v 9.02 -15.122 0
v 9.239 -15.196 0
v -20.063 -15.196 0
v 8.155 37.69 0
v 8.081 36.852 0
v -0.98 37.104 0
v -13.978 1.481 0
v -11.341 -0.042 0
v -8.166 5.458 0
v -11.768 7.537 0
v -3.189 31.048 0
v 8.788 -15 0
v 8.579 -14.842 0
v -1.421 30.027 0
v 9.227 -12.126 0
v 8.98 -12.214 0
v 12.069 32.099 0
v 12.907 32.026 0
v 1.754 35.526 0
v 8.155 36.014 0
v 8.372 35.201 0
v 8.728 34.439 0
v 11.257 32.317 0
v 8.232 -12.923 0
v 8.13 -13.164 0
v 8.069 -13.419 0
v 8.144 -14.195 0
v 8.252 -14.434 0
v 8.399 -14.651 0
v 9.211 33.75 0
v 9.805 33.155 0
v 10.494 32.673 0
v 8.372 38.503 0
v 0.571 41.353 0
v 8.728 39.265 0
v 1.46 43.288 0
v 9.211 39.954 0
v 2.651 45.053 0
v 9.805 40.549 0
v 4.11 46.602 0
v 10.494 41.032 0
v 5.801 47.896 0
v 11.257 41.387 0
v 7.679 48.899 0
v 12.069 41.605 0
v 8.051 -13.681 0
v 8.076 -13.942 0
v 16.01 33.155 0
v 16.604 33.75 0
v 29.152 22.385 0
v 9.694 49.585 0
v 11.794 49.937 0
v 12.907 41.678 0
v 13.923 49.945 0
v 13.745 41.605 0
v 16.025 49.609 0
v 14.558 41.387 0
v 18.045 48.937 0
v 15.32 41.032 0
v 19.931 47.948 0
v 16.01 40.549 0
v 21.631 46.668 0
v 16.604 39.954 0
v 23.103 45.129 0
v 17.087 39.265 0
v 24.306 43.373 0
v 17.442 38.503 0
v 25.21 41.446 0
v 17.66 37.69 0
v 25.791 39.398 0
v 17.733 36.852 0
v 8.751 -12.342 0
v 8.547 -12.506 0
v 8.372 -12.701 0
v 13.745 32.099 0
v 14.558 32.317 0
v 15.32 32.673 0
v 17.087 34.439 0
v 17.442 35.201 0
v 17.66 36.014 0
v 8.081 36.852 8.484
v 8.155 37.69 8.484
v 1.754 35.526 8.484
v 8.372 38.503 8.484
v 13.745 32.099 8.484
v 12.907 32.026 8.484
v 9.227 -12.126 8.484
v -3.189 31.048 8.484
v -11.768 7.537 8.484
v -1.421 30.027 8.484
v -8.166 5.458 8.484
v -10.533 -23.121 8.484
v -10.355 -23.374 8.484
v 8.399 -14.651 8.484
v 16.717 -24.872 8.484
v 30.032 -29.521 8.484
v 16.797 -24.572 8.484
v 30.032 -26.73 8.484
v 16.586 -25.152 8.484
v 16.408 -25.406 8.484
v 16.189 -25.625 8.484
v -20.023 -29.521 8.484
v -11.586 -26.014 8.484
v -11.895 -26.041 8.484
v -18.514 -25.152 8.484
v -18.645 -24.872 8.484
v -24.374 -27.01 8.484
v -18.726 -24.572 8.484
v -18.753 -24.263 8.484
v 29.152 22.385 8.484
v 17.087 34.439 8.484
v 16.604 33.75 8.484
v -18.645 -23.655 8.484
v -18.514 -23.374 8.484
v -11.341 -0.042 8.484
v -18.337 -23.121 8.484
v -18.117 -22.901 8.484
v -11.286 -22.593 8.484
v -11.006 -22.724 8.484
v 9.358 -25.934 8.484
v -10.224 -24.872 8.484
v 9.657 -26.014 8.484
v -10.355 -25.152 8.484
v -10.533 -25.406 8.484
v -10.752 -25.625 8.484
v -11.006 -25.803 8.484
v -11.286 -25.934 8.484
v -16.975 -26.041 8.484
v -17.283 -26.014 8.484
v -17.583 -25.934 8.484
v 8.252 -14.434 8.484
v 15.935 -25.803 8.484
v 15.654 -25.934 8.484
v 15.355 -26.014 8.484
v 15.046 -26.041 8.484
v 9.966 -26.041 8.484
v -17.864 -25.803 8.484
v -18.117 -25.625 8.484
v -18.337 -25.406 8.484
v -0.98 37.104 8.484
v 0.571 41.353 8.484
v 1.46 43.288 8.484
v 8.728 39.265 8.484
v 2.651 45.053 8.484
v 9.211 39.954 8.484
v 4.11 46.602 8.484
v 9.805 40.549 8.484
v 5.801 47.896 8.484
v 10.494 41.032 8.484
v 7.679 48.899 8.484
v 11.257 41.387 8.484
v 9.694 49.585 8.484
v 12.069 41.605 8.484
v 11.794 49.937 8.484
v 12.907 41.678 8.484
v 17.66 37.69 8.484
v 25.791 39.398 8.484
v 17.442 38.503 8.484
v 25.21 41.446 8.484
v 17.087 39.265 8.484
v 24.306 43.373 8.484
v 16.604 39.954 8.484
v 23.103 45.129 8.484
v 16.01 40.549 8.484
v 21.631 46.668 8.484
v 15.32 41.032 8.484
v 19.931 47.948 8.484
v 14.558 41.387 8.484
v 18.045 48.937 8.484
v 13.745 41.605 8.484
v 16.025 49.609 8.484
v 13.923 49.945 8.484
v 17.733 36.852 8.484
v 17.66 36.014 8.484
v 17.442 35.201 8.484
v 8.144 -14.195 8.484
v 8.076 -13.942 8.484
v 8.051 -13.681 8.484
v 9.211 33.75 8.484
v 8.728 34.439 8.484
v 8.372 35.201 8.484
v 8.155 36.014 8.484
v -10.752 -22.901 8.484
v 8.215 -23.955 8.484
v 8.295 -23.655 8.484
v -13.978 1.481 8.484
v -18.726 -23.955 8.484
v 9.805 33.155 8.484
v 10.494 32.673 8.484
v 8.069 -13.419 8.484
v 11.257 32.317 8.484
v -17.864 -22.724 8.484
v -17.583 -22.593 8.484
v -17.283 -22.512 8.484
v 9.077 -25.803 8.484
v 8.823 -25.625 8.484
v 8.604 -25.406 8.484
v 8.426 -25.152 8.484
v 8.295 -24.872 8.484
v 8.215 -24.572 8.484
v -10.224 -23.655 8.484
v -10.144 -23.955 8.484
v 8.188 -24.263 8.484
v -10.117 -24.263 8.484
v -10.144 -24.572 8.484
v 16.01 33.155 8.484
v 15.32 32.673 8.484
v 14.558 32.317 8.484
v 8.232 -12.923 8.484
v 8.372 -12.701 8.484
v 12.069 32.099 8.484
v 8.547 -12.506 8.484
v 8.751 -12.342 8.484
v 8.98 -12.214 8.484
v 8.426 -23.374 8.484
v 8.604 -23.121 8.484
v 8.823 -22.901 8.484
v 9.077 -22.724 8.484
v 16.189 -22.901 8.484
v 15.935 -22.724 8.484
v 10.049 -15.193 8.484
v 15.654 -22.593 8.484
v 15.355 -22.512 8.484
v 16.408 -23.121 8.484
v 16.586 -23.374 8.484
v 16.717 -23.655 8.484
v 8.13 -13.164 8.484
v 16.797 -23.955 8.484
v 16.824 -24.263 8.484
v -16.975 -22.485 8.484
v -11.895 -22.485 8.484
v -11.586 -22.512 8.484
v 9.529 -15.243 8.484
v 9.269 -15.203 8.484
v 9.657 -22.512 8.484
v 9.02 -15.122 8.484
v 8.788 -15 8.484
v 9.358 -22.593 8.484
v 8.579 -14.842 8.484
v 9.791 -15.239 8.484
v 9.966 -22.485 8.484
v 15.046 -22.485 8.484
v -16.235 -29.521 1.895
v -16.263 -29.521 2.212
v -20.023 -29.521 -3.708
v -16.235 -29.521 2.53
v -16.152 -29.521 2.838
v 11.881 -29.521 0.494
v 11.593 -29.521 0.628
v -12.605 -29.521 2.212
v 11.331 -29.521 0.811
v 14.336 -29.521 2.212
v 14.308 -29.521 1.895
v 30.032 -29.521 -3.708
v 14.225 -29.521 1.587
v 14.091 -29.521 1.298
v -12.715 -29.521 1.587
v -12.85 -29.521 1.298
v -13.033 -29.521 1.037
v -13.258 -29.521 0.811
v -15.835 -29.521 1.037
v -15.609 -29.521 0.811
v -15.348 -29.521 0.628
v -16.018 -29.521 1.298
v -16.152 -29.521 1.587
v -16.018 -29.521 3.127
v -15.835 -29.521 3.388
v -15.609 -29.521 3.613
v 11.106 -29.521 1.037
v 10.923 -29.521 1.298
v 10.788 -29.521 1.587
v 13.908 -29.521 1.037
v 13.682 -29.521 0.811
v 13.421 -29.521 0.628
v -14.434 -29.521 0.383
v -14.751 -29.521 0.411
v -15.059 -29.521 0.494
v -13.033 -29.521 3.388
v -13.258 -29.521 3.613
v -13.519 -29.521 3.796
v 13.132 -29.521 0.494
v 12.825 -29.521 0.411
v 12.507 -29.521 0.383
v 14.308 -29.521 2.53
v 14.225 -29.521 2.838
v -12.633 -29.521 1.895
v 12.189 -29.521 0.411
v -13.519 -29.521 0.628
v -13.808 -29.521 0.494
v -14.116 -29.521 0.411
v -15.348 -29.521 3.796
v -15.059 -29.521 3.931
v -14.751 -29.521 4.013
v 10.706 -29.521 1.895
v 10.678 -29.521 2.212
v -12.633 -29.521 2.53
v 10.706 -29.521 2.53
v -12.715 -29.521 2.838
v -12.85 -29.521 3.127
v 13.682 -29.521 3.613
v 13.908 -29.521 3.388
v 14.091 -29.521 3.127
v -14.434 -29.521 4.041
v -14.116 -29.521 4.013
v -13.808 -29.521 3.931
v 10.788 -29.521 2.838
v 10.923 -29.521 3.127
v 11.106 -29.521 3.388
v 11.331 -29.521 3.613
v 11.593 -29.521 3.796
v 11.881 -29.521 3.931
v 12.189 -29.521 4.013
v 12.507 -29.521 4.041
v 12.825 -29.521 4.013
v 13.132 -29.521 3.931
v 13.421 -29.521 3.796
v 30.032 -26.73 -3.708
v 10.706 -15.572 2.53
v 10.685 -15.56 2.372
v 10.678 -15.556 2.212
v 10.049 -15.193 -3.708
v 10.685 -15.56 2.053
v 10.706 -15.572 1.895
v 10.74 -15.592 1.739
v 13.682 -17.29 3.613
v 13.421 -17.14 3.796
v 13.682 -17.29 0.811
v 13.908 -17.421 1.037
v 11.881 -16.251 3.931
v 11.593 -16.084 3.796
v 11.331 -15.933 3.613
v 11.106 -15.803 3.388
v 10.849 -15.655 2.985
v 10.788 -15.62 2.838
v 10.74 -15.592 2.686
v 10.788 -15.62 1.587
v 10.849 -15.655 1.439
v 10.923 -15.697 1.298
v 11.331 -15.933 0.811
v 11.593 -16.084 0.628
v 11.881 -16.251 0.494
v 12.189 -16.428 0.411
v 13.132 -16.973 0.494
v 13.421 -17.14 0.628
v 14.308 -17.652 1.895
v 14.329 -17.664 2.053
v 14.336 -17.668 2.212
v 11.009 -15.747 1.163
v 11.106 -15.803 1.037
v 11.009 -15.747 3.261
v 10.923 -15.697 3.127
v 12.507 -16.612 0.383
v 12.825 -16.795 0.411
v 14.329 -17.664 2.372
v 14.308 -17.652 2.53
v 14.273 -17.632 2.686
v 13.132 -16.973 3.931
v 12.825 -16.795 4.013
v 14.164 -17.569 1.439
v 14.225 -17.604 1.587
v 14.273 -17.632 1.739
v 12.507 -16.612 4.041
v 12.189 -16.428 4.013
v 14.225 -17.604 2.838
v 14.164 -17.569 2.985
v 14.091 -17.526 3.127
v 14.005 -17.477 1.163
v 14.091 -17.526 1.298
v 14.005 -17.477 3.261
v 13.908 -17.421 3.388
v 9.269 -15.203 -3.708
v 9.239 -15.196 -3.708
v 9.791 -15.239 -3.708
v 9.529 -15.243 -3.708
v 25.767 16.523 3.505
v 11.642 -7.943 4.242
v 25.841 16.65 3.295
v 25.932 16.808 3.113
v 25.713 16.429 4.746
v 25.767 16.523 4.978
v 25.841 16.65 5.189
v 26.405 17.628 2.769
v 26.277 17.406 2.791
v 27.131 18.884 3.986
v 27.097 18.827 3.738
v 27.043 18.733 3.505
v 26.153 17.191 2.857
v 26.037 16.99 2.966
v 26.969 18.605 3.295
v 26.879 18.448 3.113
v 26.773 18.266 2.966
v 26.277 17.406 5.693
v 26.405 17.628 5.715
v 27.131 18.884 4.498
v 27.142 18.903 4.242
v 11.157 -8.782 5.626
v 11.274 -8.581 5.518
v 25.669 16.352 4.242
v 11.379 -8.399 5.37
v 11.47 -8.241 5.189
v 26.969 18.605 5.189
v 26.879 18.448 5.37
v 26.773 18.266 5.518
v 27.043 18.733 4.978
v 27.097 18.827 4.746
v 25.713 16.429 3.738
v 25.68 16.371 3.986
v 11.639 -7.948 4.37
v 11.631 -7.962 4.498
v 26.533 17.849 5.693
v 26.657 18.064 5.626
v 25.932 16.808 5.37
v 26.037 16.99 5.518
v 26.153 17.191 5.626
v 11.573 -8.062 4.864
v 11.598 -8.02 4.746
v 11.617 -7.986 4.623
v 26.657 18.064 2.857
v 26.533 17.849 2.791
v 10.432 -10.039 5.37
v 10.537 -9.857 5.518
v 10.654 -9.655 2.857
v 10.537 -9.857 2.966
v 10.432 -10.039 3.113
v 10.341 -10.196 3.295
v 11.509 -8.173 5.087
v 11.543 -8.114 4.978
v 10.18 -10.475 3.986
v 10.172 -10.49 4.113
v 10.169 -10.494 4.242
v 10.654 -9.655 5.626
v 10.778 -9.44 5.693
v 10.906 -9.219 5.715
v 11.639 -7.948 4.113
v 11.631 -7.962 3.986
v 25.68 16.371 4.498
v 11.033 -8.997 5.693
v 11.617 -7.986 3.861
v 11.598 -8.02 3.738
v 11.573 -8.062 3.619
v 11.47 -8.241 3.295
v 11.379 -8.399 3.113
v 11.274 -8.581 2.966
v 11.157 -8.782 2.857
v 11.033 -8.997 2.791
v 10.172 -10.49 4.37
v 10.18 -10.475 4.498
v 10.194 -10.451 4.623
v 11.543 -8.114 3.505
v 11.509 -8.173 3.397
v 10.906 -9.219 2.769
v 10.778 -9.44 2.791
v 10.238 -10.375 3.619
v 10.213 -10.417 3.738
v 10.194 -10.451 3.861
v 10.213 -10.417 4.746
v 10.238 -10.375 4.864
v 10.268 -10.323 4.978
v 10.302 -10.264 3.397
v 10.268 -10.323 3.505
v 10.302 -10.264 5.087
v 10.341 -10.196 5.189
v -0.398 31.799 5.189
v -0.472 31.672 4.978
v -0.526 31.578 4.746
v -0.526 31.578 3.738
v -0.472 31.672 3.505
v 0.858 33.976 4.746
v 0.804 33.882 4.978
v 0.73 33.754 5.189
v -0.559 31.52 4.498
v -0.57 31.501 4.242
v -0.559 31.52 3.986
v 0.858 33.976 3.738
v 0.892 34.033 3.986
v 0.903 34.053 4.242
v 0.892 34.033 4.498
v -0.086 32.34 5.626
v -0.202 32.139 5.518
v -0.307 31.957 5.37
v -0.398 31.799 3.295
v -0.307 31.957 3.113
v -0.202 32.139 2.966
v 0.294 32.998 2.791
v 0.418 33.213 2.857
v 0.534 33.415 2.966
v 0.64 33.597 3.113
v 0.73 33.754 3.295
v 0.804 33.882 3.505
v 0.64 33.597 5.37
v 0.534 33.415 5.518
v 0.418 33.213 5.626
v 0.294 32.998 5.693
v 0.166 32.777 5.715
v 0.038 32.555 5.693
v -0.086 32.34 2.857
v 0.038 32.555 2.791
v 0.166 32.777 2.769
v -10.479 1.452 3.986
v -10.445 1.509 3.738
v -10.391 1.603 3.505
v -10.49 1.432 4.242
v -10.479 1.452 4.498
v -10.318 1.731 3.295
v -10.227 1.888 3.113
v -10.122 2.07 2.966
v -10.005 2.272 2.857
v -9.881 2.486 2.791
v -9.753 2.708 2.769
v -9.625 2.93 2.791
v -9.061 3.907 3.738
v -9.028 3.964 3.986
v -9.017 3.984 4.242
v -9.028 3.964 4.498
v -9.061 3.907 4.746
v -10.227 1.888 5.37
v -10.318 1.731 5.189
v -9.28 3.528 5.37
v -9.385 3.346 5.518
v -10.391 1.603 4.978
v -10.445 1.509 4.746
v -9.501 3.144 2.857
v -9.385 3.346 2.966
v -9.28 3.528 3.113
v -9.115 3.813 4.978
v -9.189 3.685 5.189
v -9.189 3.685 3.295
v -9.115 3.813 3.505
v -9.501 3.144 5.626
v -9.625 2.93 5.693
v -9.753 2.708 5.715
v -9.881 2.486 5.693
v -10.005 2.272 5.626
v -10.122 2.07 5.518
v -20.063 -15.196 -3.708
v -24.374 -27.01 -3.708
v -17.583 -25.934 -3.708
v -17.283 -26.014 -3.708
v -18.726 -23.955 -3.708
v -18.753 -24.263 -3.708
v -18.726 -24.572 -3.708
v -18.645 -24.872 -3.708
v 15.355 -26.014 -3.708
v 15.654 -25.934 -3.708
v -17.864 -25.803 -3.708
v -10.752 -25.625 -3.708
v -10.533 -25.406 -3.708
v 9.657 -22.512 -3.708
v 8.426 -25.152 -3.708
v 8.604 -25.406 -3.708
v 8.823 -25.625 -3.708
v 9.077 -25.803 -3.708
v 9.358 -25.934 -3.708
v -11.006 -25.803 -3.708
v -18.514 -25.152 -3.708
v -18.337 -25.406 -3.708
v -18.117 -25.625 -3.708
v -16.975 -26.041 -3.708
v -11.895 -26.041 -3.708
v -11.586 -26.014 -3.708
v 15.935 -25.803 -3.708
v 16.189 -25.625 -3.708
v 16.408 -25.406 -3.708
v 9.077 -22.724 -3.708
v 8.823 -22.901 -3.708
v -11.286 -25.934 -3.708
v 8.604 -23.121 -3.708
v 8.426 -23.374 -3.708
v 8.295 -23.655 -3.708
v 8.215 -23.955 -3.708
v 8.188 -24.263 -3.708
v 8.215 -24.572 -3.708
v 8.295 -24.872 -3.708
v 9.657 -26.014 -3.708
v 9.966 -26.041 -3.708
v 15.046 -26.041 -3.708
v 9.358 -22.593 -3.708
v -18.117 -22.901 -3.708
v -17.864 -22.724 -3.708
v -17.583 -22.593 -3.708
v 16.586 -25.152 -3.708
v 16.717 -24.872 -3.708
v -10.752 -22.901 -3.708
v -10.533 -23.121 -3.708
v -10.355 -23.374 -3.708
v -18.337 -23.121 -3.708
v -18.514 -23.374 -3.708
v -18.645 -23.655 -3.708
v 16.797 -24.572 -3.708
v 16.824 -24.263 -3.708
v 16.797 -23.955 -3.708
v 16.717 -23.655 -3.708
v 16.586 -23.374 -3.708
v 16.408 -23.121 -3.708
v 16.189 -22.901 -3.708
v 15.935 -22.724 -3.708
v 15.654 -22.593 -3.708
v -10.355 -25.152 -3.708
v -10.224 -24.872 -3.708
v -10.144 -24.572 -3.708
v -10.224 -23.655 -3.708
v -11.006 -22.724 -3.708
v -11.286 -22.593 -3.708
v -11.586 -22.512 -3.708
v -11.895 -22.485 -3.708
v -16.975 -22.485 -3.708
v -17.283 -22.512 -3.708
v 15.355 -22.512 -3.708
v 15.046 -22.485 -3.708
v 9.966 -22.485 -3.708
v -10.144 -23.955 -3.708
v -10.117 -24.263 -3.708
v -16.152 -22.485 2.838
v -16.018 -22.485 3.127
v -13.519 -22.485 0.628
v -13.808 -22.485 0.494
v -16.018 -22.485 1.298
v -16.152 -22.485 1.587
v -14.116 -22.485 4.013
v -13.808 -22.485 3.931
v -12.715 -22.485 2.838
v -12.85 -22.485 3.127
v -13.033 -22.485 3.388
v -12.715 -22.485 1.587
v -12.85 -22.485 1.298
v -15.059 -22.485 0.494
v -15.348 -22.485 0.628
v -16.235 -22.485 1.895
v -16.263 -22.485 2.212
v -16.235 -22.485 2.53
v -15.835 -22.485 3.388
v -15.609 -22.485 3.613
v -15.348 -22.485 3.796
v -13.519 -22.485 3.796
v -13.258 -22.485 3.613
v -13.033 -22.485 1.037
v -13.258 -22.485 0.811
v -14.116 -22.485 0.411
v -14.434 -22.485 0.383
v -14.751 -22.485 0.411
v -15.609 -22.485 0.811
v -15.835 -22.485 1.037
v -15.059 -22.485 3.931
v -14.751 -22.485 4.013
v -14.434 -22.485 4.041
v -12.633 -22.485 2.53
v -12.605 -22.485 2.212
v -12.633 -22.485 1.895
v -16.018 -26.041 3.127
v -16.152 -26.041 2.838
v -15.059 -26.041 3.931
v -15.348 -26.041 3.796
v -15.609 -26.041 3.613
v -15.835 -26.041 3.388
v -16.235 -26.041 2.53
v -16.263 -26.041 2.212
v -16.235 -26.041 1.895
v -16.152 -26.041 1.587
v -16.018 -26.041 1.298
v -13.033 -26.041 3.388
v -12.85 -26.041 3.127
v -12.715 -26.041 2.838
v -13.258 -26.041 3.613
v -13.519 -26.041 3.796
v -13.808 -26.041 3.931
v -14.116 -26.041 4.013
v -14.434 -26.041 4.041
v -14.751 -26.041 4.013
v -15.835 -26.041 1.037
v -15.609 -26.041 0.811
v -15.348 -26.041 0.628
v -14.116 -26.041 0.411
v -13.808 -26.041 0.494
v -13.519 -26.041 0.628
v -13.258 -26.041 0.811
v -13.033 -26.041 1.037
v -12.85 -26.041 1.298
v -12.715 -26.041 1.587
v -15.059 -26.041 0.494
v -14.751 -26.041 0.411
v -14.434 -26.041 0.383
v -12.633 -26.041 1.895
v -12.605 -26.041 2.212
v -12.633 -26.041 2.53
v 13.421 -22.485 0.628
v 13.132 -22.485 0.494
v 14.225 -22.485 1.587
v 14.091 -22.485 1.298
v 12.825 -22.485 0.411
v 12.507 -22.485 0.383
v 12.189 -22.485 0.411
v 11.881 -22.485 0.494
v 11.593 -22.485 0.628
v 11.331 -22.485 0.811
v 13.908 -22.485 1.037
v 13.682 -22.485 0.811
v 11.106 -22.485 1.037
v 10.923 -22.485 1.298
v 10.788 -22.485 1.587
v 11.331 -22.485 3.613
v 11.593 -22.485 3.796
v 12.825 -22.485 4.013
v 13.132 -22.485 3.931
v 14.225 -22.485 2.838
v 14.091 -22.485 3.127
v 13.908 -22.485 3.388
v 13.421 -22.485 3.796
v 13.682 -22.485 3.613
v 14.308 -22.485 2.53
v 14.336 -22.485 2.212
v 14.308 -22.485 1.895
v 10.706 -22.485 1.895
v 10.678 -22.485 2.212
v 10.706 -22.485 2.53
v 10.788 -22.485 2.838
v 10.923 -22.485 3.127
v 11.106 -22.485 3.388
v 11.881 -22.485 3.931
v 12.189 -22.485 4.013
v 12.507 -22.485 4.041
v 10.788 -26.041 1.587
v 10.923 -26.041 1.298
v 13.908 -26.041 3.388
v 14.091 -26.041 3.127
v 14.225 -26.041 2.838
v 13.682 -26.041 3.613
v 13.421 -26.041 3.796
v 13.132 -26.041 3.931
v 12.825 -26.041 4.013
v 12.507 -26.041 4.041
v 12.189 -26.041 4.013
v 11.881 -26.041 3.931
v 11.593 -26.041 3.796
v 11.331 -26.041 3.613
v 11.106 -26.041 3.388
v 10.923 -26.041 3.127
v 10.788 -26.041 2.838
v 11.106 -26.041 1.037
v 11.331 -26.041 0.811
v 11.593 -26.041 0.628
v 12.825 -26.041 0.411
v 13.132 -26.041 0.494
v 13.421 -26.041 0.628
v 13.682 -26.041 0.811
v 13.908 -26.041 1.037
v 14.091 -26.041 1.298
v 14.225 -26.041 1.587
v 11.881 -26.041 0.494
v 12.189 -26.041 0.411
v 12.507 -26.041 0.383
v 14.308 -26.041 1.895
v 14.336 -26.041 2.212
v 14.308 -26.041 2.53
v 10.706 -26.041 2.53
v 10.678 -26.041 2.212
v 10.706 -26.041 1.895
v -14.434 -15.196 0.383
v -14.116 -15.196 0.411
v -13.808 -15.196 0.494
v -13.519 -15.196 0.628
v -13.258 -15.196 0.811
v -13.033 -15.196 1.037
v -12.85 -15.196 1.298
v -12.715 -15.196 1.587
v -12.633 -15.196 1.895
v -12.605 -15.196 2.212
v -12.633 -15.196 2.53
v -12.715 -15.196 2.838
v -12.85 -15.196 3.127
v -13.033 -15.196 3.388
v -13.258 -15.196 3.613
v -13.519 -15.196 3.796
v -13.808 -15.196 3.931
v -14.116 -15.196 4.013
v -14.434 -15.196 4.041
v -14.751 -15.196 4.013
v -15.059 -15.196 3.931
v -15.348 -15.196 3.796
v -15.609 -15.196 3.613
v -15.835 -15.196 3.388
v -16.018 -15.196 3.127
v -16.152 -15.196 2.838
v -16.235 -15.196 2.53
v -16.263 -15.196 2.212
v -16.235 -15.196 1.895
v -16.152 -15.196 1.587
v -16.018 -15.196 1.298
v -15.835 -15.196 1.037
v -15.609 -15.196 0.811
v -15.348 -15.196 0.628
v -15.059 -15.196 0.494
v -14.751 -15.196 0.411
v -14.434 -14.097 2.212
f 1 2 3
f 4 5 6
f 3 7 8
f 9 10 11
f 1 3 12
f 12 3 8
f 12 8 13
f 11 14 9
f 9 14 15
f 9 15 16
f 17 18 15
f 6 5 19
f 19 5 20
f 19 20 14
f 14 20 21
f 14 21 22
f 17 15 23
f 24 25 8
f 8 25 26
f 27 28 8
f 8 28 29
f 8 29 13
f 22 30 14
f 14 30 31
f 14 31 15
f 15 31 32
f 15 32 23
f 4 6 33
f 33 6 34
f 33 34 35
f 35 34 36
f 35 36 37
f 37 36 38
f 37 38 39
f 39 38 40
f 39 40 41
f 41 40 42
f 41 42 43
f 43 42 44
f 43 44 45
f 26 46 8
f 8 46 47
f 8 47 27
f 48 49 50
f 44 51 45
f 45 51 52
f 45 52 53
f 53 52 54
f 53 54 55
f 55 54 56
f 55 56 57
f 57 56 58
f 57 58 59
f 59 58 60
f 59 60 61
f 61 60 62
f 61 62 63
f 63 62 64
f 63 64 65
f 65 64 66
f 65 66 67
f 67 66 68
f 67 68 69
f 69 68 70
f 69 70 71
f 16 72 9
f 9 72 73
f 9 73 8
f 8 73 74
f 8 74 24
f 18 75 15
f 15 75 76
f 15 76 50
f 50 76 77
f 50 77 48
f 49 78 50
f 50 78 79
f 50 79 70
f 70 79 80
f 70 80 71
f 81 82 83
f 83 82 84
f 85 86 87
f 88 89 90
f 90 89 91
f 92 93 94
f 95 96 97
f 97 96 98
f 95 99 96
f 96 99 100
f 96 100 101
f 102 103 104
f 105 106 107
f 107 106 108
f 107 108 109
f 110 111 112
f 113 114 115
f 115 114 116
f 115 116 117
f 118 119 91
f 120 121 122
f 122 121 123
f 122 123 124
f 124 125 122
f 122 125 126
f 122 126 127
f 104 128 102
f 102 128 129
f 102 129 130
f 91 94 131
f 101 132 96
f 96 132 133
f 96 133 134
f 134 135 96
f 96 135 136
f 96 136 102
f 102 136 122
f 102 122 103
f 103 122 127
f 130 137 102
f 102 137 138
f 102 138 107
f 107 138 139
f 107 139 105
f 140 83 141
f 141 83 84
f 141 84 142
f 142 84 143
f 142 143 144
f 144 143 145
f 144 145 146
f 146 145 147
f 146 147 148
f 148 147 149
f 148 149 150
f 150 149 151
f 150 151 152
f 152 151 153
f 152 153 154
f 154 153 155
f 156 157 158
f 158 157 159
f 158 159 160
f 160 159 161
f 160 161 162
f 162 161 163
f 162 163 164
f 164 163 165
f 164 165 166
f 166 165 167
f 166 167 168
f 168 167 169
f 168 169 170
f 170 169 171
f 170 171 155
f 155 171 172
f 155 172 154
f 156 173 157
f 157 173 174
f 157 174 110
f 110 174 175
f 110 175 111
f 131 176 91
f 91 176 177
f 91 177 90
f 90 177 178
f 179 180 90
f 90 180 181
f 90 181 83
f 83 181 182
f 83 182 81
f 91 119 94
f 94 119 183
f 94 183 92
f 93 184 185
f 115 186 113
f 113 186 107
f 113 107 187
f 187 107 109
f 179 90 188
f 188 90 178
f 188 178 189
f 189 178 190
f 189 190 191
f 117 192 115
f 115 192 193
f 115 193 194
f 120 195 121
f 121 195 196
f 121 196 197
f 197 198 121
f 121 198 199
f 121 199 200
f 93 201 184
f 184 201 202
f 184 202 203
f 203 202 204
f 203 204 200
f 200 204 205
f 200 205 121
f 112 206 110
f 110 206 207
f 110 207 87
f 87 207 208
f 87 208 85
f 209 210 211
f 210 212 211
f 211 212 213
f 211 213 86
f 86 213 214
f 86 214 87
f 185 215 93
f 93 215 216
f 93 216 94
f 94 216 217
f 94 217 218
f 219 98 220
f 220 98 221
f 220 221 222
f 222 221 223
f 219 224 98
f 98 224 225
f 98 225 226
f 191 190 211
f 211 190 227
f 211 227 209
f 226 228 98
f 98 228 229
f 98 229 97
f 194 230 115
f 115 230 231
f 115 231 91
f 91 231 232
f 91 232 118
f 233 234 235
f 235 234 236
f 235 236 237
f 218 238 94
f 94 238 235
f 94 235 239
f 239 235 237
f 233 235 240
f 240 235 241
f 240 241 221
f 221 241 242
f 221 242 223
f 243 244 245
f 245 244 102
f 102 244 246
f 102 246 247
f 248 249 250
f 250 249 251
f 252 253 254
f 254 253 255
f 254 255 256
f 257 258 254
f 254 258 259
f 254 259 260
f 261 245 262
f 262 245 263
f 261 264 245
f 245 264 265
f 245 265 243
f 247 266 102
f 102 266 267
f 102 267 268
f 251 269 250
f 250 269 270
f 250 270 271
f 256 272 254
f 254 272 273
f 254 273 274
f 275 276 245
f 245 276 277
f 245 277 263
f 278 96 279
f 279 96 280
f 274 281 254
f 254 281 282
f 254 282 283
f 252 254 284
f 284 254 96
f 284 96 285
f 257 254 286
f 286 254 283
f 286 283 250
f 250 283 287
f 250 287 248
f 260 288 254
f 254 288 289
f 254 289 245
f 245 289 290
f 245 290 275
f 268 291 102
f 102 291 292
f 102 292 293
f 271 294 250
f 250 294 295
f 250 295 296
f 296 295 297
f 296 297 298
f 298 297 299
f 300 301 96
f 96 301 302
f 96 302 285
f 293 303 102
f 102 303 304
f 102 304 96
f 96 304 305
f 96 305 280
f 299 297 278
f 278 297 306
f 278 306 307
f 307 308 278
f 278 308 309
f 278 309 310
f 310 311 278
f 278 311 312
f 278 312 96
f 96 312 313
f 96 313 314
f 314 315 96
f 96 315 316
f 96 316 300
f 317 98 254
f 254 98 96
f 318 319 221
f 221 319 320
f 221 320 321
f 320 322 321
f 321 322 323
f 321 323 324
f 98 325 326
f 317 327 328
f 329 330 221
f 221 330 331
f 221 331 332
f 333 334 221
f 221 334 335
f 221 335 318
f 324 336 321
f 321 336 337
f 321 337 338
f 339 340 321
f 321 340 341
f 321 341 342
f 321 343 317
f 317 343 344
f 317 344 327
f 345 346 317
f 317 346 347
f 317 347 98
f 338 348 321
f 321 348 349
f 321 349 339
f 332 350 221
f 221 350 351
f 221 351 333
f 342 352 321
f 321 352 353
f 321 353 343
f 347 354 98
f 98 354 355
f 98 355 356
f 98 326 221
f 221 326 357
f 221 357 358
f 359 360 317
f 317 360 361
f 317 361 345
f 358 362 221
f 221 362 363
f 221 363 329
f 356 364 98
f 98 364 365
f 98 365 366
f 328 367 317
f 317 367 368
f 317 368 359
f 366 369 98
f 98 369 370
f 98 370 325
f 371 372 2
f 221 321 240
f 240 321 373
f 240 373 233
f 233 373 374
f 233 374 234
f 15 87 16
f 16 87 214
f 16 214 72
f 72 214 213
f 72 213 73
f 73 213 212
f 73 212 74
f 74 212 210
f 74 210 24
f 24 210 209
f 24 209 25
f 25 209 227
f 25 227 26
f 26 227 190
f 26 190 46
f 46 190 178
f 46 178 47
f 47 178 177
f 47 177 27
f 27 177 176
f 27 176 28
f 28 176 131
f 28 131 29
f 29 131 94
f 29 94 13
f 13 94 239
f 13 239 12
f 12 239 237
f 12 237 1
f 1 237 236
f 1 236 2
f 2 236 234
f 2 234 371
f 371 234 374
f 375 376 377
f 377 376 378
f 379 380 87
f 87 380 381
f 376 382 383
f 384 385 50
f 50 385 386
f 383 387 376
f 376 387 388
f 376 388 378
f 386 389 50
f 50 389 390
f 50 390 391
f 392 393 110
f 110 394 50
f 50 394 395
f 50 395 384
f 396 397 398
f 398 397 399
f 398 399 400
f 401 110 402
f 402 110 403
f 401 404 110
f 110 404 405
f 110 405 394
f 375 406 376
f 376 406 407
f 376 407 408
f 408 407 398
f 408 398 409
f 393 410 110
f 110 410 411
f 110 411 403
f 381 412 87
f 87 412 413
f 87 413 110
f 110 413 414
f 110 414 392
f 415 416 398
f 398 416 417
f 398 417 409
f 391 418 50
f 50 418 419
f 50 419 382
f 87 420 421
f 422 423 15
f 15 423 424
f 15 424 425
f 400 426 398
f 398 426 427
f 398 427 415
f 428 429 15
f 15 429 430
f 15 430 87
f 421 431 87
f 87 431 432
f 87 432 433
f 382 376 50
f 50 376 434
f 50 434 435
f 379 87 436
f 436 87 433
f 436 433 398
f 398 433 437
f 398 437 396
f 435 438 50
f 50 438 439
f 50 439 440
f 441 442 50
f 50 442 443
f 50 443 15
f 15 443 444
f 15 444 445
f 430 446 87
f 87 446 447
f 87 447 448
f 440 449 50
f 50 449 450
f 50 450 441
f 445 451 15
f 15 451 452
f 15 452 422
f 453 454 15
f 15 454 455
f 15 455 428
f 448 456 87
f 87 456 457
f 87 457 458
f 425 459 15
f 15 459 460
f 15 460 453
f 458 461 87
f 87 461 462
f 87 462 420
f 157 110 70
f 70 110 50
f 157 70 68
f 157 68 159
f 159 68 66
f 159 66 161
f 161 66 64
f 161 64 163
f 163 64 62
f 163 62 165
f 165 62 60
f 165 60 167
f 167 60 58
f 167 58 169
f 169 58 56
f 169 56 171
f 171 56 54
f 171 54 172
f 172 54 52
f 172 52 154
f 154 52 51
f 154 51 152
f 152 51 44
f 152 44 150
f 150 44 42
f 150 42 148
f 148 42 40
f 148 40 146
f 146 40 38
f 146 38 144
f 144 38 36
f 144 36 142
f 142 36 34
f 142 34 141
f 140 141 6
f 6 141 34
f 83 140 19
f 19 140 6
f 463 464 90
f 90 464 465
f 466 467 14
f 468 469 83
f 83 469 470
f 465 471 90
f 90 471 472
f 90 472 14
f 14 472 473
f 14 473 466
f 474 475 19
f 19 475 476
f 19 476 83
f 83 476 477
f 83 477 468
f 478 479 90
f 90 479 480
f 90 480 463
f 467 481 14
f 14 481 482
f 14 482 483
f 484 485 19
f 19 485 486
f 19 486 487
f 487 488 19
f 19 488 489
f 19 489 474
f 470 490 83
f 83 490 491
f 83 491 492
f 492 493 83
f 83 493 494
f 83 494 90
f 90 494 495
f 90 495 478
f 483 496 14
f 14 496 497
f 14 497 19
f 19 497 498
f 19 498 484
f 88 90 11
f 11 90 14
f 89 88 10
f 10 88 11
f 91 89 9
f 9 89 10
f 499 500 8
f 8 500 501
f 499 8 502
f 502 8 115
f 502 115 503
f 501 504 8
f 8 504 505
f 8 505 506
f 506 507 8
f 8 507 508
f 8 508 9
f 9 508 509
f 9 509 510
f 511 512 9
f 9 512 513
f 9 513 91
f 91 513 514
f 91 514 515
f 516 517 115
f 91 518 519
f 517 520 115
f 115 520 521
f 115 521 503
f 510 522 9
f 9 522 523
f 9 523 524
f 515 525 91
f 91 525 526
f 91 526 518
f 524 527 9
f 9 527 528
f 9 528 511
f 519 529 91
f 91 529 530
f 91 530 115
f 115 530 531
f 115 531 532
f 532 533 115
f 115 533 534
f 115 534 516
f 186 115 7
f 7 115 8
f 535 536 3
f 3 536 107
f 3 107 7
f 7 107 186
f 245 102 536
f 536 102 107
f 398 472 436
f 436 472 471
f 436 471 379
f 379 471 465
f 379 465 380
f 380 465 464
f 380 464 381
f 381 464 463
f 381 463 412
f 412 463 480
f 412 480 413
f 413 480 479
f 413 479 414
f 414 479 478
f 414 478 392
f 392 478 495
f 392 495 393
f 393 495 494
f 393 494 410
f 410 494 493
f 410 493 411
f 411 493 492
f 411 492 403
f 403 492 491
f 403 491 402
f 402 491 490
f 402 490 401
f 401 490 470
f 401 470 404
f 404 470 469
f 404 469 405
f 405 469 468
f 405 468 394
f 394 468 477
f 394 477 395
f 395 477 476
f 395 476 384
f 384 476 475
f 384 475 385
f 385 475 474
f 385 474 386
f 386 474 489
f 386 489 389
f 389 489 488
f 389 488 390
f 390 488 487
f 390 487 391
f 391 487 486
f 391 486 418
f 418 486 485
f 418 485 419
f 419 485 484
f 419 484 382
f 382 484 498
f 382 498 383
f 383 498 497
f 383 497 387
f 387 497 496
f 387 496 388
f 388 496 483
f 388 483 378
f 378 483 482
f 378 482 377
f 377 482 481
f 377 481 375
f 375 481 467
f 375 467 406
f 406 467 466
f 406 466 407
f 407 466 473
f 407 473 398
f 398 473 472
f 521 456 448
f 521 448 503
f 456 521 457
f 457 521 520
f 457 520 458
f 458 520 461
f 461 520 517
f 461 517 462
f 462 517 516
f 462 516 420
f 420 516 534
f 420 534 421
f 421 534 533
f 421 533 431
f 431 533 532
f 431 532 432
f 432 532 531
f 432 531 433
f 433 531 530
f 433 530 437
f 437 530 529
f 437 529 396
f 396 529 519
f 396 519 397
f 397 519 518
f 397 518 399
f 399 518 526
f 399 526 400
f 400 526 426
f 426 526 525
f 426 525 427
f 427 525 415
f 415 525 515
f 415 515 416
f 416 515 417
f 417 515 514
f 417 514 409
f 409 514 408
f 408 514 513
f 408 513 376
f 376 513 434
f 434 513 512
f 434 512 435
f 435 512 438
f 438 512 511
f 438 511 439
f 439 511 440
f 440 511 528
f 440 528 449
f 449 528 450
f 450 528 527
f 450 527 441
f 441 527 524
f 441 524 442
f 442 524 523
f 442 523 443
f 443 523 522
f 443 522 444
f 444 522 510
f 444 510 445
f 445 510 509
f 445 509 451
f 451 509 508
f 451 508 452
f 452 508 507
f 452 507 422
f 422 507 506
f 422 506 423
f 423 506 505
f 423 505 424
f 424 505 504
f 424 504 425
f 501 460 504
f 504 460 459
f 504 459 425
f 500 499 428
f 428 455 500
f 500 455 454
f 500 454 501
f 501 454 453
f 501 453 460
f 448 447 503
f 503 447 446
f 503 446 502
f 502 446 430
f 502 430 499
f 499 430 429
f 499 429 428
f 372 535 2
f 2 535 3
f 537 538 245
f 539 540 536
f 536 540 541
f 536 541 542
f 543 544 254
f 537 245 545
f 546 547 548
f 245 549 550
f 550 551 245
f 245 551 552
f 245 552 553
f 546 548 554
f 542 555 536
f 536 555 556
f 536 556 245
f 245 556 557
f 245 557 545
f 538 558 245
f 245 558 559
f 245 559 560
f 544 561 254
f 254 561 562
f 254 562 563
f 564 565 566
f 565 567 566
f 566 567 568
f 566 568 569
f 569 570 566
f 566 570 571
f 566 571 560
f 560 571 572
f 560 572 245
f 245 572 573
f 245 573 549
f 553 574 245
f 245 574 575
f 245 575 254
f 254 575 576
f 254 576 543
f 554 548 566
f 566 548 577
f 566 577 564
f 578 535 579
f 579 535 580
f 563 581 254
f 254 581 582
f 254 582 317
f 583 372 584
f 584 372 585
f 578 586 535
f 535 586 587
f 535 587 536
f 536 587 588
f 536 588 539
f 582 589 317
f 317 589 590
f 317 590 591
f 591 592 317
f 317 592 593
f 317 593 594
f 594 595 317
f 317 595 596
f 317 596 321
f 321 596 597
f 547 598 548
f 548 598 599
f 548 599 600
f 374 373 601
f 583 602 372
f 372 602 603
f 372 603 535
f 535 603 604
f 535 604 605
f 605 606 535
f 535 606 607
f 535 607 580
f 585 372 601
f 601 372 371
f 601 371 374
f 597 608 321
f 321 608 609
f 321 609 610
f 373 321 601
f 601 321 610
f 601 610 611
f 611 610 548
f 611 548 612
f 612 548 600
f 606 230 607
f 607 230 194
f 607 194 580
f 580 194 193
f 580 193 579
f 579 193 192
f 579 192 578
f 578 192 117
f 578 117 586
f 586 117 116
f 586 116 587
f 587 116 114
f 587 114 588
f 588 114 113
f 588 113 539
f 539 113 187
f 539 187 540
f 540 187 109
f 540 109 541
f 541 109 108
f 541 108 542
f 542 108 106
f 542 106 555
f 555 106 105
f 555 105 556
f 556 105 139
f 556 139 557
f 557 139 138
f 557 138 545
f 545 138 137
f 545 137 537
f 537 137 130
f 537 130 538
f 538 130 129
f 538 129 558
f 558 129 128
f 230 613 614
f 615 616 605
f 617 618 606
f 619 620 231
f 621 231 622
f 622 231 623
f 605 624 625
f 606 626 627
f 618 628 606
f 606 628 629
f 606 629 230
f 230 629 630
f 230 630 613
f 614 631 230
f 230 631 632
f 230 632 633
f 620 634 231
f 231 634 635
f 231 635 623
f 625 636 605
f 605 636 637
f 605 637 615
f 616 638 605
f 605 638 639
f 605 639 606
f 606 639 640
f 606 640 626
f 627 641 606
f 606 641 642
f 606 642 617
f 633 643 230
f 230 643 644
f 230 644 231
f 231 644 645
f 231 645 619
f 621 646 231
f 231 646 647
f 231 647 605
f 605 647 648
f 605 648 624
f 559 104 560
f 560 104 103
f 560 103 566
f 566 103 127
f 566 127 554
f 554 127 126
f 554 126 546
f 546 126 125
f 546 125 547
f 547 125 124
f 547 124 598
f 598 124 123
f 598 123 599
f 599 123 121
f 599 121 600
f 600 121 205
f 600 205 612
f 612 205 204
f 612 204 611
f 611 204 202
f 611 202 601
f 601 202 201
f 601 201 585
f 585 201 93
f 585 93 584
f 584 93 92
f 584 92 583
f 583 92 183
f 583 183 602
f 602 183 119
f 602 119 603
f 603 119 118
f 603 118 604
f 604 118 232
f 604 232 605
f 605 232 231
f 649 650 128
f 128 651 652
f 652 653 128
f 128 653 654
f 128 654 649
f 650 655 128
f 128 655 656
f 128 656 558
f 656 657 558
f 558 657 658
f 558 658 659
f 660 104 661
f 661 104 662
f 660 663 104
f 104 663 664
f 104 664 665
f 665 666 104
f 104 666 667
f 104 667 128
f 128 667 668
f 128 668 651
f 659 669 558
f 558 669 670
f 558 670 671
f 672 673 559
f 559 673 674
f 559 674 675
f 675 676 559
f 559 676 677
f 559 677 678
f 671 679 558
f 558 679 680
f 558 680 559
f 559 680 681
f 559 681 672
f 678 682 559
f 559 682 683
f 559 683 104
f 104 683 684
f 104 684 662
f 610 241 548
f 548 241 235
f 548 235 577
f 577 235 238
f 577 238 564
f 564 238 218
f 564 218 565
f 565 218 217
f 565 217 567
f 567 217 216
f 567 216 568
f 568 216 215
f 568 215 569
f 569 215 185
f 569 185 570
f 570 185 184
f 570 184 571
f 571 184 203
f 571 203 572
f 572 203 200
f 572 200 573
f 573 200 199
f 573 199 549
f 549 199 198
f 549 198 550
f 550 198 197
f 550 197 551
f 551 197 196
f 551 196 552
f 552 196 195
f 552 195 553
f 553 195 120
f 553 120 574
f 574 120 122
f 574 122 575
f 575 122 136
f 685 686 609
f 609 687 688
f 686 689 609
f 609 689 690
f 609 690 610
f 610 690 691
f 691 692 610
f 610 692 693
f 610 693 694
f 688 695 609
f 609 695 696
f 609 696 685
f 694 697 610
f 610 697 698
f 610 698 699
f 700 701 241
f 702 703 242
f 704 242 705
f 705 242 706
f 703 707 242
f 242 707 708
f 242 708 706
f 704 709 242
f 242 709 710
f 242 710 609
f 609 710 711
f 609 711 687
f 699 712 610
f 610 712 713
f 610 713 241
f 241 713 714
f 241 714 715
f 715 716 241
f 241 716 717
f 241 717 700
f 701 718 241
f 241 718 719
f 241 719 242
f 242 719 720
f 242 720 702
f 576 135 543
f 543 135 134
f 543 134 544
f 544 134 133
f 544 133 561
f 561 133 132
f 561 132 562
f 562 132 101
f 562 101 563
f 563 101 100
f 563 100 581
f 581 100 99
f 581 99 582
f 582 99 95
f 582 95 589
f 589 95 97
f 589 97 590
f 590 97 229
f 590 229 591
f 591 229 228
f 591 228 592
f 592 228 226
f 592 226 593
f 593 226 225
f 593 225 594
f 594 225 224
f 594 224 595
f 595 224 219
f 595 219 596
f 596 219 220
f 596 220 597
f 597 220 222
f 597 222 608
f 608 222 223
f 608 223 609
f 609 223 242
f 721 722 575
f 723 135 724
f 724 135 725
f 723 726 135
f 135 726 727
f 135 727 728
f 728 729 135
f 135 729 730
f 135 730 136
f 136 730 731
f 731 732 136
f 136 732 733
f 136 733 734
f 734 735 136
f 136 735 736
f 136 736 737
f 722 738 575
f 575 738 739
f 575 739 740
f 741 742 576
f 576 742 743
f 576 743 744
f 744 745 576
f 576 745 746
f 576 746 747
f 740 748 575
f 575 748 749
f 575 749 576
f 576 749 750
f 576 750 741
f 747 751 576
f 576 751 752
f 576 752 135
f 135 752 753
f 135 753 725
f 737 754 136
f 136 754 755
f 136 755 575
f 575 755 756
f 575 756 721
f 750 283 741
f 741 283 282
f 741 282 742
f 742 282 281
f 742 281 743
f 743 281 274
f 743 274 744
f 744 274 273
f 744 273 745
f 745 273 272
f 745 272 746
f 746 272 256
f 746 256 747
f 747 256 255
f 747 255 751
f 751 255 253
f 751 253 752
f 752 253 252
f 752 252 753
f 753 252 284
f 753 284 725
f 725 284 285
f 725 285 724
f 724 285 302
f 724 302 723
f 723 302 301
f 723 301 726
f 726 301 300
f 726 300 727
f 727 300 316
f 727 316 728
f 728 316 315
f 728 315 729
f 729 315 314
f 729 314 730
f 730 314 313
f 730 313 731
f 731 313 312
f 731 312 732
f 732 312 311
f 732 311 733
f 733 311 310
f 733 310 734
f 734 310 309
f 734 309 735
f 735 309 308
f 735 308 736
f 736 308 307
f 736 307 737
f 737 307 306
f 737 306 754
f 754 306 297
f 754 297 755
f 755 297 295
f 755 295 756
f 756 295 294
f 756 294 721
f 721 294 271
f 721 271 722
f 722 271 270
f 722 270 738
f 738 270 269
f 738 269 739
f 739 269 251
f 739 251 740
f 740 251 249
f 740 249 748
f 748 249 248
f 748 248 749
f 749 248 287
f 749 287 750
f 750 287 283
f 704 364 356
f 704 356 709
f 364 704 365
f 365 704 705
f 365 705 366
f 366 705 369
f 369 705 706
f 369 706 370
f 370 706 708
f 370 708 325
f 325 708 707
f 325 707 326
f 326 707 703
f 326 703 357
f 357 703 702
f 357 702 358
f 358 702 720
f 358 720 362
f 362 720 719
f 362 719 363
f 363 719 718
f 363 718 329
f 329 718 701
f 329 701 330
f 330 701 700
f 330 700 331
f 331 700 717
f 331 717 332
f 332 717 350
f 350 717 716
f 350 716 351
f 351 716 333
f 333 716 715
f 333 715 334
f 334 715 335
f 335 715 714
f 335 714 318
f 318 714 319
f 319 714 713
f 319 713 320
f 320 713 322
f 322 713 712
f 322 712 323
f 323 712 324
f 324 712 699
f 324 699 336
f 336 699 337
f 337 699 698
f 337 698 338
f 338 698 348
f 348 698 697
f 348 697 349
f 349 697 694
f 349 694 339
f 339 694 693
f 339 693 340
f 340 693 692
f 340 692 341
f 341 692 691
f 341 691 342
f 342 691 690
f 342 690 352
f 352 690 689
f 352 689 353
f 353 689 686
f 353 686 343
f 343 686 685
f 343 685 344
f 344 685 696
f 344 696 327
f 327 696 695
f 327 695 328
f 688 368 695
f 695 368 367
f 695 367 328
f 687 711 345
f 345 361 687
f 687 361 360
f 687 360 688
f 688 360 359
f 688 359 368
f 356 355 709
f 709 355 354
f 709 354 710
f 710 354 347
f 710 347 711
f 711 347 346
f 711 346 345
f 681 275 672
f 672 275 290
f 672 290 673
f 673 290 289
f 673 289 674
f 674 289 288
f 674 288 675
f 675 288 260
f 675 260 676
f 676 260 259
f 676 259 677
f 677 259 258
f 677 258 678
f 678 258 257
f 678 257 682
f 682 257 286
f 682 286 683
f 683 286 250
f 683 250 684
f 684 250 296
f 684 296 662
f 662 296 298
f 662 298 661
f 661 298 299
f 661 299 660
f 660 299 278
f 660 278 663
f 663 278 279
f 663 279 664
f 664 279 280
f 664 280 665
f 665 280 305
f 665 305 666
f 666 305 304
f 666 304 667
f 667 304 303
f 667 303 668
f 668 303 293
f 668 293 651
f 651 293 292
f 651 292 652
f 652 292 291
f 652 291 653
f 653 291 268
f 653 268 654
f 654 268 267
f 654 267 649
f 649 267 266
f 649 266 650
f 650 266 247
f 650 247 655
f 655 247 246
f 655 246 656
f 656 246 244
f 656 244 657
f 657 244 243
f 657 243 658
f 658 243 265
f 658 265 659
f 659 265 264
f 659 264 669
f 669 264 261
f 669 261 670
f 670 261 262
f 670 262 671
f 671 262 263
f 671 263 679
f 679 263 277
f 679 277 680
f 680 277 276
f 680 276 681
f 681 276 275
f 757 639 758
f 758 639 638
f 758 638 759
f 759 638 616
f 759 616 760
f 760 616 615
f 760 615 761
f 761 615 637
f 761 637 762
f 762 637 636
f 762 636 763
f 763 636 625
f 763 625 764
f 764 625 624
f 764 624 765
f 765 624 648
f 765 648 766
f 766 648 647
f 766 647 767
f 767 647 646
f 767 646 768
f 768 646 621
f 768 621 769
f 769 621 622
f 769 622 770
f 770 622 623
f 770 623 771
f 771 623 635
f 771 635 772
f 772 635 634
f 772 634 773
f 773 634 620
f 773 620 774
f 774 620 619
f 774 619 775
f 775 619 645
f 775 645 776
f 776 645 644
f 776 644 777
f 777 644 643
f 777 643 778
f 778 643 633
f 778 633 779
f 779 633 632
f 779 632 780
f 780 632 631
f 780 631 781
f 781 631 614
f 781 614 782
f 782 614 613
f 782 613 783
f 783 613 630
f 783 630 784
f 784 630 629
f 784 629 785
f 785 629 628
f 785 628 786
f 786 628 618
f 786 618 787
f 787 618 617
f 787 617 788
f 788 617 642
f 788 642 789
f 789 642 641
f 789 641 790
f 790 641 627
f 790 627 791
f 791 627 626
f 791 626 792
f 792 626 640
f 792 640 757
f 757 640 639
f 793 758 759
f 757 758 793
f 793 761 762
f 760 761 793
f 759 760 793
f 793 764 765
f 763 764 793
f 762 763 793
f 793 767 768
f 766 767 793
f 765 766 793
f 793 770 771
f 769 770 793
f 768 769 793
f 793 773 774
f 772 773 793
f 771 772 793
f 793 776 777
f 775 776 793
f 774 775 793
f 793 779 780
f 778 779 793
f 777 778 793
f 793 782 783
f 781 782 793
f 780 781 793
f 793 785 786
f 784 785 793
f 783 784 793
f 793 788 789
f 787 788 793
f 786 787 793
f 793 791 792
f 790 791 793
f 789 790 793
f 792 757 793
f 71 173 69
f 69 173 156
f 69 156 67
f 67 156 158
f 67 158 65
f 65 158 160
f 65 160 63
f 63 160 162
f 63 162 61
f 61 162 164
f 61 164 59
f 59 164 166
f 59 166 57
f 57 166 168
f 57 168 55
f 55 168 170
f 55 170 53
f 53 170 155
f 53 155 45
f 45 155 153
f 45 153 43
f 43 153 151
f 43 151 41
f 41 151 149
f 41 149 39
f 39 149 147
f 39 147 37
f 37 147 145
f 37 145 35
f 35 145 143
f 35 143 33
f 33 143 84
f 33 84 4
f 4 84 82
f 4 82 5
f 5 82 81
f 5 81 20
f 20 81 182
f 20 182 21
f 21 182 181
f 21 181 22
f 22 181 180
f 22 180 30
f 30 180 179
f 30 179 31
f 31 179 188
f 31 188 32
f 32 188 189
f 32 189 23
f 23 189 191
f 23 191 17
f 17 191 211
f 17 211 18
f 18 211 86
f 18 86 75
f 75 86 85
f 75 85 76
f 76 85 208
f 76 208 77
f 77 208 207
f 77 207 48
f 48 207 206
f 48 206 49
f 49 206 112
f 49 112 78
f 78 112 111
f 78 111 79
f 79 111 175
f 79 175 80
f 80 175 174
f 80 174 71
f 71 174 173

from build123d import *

# Parameters (mm, degrees)
MODEL_R                   = 3.175
BOSS_EXTRUDE1_DEPTH       = 8.4836
F_4_CLEARANCE_HOLE3_D     = 2.9464
F_4_CLEARANCE_HOLE4_D     = 2.9464
BOSS_EXTRUDE2_START       = 3.7084
BOSS_EXTRUDE2_DEPTH       = 3.7084
CUT_EXTRUDE1_DEPTH        = 60.573404892
F_6_CLEARANCE_HOLE2_D     = 3.6576
F_6_CLEARANCE_HOLE2_DEPTH = 14.3256
F_6_CLEARANCE_HOLE2_TIP   = 1.0988539
SKETCH20_R                = 4.826
CUT_EXTRUDE2_DEPTH        = 60.573404892


with BuildPart() as part:
    # Model → Boss-Extrude1 (new body)
    with BuildSketch(Plane.XY):
        with BuildLine():
            Line((30.032015577, -29.521189504), (30.032015577, -26.729824585))
            Line((30.032015577, -26.729824585), (10.04882977, -15.19252688))
            ThreePointArc((10.04882977, -15.19252688), (8.104547287, -14.069994865), (9.227079302, -12.125712382))
            Line((9.227079302, -12.125712382), (29.151876156, 22.3850481))
            Line((29.151876156, 22.3850481), (25.790540116, 39.397524407))
            ThreePointArc((25.790540116, 39.397524407), (13.922877184, 49.944916766), (0.570865514, 41.353485372))
            Line((0.570865514, 41.353485372), (-0.979565285, 37.104375313))
            Line((-0.979565285, 37.104375313), (1.753621818, 35.526369004))
            Line((1.753621818, 35.526369004), (-1.421378182, 30.02710769))
            Line((-1.421378182, 30.02710769), (-3.189468587, 31.047915161))
            Line((-3.189468587, 31.047915161), (-11.768069595, 7.537404491))
            Line((-11.768069595, 7.537404491), (-8.165923931, 5.457704722))
            Line((-8.165923931, 5.457704722), (-11.34077003, -0.041645446))
            Line((-11.34077003, -0.041645446), (-13.977972897, 1.480944339))
            Line((-13.977972897, 1.480944339), (-24.373743148, -27.00969967))
            Line((-24.373743148, -27.00969967), (-20.022585807, -29.521189504))
            Line((-20.022585807, -29.521189504), (30.032015577, -29.521189504))
        make_face()
        with Locations(Location((12.90743615, 36.852072417, 0), (0, 0, 180))):
            Circle(MODEL_R, mode=Mode.SUBTRACT)
    extrude(amount=BOSS_EXTRUDE1_DEPTH)

    # #4 Clearance Hole3 (through all)
    with Locations(Plane(origin=(-14.068152667, 8.12225173, 0), x_dir=(0, 0, 1), z_dir=(-0.8660254037844389, 0.4999999999999996, 0))):
        with Locations((4.2418, 28.46854897)):
            Hole(F_4_CLEARANCE_HOLE3_D / 2)

    # #4 Clearance Hole4 (through all)
    with Locations(Plane(origin=(-8.487819953, 4.900128422, 0), x_dir=(0, 0, 1), z_dir=(-0.8660393963332388, 0.49997576341134725, 0))):
        with Locations((4.2418, -2.53117675)):
            Hole(F_4_CLEARANCE_HOLE4_D / 2)

    # Sketch12 → Boss-Extrude2 (add)
    with BuildSketch(Plane(origin=(0, 0, 0), x_dir=(-1, 0, 0), z_dir=(0, 0, -1)).offset(BOSS_EXTRUDE2_START)):
        with BuildLine():
            Line((20.062967478, -15.195589504), (-9.238684477, -15.195589504))
            ThreePointArc((-9.238684477, -15.195589504), (-9.643955781, -15.246608288), (-10.04882977, -15.19252688))
            Line((-10.04882977, -15.19252688), (-30.032015577, -26.729824585))
            Line((-30.032015577, -26.729824585), (-30.032015577, -29.521189504))
            Line((-30.032015577, -29.521189504), (20.022585807, -29.521189504))
            Line((20.022585807, -29.521189504), (24.373743148, -27.00969967))
            Line((24.373743148, -27.00969967), (20.062967478, -15.195589504))
        make_face()
    extrude(amount=-BOSS_EXTRUDE2_DEPTH)

    # Sketch14 → Cut-Extrude1 (cut, through all)
    with BuildSketch(Plane.XY.offset(8.4836)):
        with BuildLine():
            Line((-16.974585807, -22.485389504), (-11.894585807, -22.485389504))
            ThreePointArc((-11.894585807, -22.485389504), (-10.116585807, -24.263389504), (-11.894585807, -26.041389504))
            Line((-11.894585807, -26.041389504), (-16.974585807, -26.041389504))
            ThreePointArc((-16.974585807, -26.041389504), (-18.752585807, -24.263389504), (-16.974585807, -22.485389504))
        make_face()
        with BuildLine():
            Line((9.966182511, -22.485389504), (15.046182511, -22.485389504))
            ThreePointArc((15.046182511, -22.485389504), (16.824182511, -24.263389504), (15.046182511, -26.041389504))
            Line((15.046182511, -26.041389504), (9.966182511, -26.041389504))
            ThreePointArc((9.966182511, -26.041389504), (8.188182511, -24.263389504), (9.966182511, -22.485389504))
        make_face()
    extrude(amount=-CUT_EXTRUDE1_DEPTH, mode=Mode.SUBTRACT)

    # #6 Clearance Hole2
    with Locations(Plane(origin=(0, -29.521189504, 0), x_dir=(-1, 0, 0), z_dir=(0, -1, 0))):
        with Locations((14.433829056, -2.212184194), (-12.506939307, -2.212184194)):
            Hole(F_6_CLEARANCE_HOLE2_D / 2, depth=F_6_CLEARANCE_HOLE2_DEPTH)
            with Locations((0, 0, -(F_6_CLEARANCE_HOLE2_DEPTH + F_6_CLEARANCE_HOLE2_TIP / 2))):  # 118° drill point
                Cone(0, F_6_CLEARANCE_HOLE2_D / 2, F_6_CLEARANCE_HOLE2_TIP, mode=Mode.SUBTRACT)

    # Sketch20 → Cut-Extrude2 (cut, through all)
    with BuildSketch(Plane.XY.offset(8.4836)):
        with Locations((12.90743615, 36.852072417)):
            Circle(SKETCH20_R)
    extrude(amount=-CUT_EXTRUDE2_DEPTH, mode=Mode.SUBTRACT)


solid = part.part
